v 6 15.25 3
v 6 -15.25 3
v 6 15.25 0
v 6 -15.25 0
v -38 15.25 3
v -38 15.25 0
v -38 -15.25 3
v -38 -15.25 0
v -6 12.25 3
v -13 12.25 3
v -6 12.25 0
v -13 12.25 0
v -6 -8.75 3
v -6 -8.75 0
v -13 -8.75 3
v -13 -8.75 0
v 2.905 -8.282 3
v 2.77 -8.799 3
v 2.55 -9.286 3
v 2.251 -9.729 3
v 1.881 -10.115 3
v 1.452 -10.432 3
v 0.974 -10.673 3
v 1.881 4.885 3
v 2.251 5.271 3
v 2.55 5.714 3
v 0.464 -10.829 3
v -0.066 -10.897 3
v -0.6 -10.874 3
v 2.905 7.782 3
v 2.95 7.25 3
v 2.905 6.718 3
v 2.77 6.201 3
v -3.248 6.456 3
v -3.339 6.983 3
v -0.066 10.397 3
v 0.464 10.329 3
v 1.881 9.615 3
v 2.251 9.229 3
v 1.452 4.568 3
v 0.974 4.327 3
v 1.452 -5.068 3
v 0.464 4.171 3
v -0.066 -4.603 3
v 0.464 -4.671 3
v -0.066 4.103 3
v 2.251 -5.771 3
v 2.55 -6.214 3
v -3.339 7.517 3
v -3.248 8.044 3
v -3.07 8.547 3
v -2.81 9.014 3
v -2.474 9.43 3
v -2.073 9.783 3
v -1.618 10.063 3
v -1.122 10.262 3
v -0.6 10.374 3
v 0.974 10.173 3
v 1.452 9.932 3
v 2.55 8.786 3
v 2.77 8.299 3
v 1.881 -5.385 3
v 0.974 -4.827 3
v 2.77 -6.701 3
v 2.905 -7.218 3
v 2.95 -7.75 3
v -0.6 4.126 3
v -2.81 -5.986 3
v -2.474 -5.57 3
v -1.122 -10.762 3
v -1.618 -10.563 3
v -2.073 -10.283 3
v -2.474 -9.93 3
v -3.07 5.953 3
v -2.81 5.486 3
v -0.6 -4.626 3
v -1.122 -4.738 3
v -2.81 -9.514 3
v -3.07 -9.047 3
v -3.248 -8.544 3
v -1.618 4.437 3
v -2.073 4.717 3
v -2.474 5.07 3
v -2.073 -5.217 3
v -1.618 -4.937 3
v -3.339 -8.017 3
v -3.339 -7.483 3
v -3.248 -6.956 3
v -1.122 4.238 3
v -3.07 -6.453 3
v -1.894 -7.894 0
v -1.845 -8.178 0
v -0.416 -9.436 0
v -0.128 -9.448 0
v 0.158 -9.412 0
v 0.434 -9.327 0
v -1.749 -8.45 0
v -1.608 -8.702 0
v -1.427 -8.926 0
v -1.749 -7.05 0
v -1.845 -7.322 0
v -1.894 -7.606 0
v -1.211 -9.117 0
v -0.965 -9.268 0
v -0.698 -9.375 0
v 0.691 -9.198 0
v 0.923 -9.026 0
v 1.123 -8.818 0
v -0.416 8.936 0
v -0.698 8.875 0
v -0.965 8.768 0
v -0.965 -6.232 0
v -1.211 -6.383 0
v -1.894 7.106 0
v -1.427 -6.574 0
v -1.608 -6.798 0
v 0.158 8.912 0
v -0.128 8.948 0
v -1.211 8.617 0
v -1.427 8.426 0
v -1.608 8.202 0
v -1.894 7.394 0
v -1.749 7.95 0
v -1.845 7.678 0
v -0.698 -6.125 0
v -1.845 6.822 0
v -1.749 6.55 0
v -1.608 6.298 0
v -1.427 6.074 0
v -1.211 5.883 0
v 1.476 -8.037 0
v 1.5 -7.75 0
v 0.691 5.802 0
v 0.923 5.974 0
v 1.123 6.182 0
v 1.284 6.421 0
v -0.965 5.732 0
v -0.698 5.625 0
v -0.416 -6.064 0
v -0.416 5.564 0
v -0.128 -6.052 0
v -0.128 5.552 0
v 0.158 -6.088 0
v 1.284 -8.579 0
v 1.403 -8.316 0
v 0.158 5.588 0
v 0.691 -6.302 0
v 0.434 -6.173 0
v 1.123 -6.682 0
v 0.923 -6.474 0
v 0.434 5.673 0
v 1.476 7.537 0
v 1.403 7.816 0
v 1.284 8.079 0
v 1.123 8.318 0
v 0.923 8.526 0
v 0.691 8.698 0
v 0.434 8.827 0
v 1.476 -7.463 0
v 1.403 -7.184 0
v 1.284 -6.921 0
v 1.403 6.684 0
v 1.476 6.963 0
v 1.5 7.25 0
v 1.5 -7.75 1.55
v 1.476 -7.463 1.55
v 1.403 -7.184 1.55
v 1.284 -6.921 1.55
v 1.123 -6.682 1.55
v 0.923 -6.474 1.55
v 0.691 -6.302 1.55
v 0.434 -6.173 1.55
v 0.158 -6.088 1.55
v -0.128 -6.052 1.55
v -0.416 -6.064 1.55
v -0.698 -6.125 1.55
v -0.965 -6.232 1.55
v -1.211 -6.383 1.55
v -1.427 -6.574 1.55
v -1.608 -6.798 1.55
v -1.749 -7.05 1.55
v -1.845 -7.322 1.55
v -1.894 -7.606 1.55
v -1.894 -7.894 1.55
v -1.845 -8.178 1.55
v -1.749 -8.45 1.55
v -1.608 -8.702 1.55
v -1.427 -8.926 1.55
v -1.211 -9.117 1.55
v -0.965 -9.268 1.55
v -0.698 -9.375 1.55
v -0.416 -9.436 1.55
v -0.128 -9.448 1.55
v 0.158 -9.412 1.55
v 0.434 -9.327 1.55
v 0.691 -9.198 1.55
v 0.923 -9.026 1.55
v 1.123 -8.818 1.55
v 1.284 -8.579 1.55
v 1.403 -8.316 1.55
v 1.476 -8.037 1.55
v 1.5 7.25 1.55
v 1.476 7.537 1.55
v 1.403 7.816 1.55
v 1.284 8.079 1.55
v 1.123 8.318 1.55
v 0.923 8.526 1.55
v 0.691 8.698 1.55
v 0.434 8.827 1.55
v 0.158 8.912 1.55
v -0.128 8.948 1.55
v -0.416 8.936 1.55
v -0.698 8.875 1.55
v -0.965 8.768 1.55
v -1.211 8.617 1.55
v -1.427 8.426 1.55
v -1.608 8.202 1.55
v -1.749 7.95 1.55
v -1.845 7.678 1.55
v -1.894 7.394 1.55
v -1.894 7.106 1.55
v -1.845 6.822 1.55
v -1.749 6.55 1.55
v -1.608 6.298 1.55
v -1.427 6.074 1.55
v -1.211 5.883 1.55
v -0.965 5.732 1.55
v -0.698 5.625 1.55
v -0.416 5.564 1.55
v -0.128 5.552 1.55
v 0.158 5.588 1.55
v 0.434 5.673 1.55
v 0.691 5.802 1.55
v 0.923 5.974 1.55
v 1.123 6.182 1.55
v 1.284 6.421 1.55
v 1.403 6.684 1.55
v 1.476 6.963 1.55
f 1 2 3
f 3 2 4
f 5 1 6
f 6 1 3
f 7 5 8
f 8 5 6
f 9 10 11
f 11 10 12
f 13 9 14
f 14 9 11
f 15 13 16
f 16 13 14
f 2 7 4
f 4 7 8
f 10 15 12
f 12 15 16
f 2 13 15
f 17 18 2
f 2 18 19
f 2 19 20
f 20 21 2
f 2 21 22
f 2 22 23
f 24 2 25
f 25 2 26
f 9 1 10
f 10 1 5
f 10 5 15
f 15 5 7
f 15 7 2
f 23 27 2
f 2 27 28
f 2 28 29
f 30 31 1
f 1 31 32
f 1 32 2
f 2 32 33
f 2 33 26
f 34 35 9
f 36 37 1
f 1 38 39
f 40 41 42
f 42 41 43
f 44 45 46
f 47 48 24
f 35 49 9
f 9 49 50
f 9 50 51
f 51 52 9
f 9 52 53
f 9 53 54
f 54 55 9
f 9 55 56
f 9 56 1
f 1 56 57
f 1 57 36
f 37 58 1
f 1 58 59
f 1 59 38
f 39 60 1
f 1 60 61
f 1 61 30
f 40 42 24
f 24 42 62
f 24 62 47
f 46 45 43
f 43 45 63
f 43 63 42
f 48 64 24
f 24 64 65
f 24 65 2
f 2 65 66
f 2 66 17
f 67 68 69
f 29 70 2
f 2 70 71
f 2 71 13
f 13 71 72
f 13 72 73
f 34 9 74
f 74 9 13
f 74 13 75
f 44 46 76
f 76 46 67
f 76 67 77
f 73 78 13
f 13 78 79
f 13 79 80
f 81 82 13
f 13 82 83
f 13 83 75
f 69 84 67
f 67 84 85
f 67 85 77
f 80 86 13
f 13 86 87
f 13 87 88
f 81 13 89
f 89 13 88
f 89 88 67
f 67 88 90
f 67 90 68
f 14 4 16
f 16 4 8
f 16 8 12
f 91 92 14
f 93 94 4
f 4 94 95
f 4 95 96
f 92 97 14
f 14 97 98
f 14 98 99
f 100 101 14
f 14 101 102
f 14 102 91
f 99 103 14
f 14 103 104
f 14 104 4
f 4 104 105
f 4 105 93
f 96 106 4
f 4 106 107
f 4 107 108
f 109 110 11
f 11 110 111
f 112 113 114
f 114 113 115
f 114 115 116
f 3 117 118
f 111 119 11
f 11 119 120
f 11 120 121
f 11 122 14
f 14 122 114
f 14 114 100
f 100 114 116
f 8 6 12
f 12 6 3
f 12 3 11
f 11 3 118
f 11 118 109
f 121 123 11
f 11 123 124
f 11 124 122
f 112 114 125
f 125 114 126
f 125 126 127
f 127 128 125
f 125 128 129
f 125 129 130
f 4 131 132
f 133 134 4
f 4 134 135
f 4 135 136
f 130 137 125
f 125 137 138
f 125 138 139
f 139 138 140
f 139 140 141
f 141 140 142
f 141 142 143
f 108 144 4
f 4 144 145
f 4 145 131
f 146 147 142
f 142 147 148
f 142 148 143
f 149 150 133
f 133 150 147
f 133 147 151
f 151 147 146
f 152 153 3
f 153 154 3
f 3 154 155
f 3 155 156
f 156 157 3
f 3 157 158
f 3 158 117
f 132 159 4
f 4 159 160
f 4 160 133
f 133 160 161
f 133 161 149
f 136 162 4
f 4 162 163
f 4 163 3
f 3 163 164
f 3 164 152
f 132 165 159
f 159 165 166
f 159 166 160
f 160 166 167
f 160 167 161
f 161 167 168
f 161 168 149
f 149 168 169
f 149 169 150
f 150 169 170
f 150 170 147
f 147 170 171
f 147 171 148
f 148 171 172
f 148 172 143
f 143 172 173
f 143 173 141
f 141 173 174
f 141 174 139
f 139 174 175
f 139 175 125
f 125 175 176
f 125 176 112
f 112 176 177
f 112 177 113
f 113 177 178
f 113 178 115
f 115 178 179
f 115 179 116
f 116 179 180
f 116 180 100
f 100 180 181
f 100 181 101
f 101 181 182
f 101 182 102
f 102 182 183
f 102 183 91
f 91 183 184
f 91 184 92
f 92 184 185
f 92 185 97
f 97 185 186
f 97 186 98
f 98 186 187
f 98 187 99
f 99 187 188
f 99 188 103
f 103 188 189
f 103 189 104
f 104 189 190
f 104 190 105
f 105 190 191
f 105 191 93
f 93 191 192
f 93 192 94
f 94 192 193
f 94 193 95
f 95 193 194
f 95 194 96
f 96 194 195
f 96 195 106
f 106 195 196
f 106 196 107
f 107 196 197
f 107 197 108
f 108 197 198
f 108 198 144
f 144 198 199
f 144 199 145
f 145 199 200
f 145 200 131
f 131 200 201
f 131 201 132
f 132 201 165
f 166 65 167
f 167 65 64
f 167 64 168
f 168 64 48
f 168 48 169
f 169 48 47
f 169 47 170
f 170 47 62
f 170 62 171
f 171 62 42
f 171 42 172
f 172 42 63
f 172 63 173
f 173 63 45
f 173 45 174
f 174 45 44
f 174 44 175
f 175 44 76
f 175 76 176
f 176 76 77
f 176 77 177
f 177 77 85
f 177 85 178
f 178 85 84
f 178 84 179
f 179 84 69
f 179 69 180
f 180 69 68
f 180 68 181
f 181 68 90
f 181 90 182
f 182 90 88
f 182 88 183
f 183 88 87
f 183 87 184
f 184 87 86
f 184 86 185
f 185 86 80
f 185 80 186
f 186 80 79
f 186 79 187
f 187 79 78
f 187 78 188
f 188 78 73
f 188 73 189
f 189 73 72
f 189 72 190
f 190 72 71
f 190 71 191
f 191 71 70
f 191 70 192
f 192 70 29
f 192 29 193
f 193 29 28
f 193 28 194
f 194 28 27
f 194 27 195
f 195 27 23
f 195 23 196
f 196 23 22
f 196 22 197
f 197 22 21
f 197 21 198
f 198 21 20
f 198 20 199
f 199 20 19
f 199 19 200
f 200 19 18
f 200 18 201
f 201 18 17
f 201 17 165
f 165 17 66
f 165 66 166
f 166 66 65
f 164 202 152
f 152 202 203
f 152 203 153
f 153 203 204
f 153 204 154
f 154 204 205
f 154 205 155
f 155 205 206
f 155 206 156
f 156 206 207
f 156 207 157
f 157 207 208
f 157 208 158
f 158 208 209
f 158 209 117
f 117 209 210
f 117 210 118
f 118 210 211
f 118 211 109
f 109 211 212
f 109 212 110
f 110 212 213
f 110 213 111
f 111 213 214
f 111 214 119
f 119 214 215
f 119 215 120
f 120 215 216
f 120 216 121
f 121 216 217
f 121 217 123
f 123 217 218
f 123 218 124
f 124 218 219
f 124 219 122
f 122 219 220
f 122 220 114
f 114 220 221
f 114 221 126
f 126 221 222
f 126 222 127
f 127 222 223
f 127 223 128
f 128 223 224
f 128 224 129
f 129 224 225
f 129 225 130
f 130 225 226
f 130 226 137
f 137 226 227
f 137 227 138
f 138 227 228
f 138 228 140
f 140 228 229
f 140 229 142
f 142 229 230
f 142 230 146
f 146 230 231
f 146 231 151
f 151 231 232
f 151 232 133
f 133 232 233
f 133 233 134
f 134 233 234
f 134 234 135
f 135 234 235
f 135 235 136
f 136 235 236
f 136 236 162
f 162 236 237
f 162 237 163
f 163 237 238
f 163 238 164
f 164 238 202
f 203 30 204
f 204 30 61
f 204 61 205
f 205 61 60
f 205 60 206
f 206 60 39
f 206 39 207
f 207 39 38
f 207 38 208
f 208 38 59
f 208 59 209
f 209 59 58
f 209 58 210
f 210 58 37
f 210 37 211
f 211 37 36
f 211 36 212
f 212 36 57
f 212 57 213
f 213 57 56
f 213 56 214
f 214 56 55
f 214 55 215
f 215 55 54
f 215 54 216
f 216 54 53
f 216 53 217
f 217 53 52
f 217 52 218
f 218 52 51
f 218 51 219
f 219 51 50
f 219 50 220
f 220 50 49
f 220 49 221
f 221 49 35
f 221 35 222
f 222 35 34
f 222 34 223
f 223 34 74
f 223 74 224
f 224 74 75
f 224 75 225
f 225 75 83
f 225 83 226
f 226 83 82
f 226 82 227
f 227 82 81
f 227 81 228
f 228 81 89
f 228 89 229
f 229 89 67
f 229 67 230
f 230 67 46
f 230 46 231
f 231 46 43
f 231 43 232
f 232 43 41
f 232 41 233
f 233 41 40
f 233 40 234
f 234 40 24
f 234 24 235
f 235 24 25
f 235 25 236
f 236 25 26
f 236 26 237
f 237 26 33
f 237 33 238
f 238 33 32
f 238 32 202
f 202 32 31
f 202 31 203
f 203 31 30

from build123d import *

# Parameters (mm, degrees)
SKETCH1_W                                      = 12
SKETCH1_H                                      = 30.5
SKETCH1_R                                      = 1.383995923
SKETCH1_R_2                                    = 1.420525084
BOSS_EXTRUDE1_DEPTH                            = 3
CSK_FOR_M3_FLAT_HEAD_MACHINE_SCREW1_AT_2_COUNT = 2
CSK_FOR_M3_FLAT_HEAD_MACHINE_SCREW1_AT_2_PITCH = 15


with BuildPart() as part:
    # Sketch1 → Boss-Extrude1 (new body)
    with BuildSketch(Plane.XY):
        Polygon((-6, 12.25), (-6, 15.25), (-38, 15.25), (-38, -15.25), (-6, -15.25), (-6, -8.75), (-13, -8.75), (-13, 12.25), align=None)
        Rectangle(SKETCH1_W, SKETCH1_H)
        with Locations((-0.2, 7.25)):
            Circle(SKETCH1_R, mode=Mode.SUBTRACT)
        with Locations((-0.2, -7.75)):
            Circle(SKETCH1_R_2, mode=Mode.SUBTRACT)
    extrude(amount=BOSS_EXTRUDE1_DEPTH)

    # Sketch4 → CSK for M3 Flat Head Machine Screw1 (revolve, cut)
    with BuildSketch(Plane(origin=(-0.2, 7.25, 3), x_dir=(0, -1, 0), z_dir=(1, 0, 0))):
        Polygon((0, 0), (0, 3), (1.7, 3), (1.7, 1.45), (3.15, 0), align=None)
    csk_for_m3_flat_head_machine_screw1 = revolve(axis=Axis((-0.2, 7.25, 9.35), (0, 0, -1)), mode=Mode.SUBTRACT)

    # CSK for M3 Flat Head Machine Screw1 at 2: CSK for M3 Flat Head Machine Screw1 ×2
    with Locations(*[(0, -i * CSK_FOR_M3_FLAT_HEAD_MACHINE_SCREW1_AT_2_PITCH, 0) for i in range(1, CSK_FOR_M3_FLAT_HEAD_MACHINE_SCREW1_AT_2_COUNT)]):
        add(csk_for_m3_flat_head_machine_screw1, mode=Mode.SUBTRACT)


solid = part.part
